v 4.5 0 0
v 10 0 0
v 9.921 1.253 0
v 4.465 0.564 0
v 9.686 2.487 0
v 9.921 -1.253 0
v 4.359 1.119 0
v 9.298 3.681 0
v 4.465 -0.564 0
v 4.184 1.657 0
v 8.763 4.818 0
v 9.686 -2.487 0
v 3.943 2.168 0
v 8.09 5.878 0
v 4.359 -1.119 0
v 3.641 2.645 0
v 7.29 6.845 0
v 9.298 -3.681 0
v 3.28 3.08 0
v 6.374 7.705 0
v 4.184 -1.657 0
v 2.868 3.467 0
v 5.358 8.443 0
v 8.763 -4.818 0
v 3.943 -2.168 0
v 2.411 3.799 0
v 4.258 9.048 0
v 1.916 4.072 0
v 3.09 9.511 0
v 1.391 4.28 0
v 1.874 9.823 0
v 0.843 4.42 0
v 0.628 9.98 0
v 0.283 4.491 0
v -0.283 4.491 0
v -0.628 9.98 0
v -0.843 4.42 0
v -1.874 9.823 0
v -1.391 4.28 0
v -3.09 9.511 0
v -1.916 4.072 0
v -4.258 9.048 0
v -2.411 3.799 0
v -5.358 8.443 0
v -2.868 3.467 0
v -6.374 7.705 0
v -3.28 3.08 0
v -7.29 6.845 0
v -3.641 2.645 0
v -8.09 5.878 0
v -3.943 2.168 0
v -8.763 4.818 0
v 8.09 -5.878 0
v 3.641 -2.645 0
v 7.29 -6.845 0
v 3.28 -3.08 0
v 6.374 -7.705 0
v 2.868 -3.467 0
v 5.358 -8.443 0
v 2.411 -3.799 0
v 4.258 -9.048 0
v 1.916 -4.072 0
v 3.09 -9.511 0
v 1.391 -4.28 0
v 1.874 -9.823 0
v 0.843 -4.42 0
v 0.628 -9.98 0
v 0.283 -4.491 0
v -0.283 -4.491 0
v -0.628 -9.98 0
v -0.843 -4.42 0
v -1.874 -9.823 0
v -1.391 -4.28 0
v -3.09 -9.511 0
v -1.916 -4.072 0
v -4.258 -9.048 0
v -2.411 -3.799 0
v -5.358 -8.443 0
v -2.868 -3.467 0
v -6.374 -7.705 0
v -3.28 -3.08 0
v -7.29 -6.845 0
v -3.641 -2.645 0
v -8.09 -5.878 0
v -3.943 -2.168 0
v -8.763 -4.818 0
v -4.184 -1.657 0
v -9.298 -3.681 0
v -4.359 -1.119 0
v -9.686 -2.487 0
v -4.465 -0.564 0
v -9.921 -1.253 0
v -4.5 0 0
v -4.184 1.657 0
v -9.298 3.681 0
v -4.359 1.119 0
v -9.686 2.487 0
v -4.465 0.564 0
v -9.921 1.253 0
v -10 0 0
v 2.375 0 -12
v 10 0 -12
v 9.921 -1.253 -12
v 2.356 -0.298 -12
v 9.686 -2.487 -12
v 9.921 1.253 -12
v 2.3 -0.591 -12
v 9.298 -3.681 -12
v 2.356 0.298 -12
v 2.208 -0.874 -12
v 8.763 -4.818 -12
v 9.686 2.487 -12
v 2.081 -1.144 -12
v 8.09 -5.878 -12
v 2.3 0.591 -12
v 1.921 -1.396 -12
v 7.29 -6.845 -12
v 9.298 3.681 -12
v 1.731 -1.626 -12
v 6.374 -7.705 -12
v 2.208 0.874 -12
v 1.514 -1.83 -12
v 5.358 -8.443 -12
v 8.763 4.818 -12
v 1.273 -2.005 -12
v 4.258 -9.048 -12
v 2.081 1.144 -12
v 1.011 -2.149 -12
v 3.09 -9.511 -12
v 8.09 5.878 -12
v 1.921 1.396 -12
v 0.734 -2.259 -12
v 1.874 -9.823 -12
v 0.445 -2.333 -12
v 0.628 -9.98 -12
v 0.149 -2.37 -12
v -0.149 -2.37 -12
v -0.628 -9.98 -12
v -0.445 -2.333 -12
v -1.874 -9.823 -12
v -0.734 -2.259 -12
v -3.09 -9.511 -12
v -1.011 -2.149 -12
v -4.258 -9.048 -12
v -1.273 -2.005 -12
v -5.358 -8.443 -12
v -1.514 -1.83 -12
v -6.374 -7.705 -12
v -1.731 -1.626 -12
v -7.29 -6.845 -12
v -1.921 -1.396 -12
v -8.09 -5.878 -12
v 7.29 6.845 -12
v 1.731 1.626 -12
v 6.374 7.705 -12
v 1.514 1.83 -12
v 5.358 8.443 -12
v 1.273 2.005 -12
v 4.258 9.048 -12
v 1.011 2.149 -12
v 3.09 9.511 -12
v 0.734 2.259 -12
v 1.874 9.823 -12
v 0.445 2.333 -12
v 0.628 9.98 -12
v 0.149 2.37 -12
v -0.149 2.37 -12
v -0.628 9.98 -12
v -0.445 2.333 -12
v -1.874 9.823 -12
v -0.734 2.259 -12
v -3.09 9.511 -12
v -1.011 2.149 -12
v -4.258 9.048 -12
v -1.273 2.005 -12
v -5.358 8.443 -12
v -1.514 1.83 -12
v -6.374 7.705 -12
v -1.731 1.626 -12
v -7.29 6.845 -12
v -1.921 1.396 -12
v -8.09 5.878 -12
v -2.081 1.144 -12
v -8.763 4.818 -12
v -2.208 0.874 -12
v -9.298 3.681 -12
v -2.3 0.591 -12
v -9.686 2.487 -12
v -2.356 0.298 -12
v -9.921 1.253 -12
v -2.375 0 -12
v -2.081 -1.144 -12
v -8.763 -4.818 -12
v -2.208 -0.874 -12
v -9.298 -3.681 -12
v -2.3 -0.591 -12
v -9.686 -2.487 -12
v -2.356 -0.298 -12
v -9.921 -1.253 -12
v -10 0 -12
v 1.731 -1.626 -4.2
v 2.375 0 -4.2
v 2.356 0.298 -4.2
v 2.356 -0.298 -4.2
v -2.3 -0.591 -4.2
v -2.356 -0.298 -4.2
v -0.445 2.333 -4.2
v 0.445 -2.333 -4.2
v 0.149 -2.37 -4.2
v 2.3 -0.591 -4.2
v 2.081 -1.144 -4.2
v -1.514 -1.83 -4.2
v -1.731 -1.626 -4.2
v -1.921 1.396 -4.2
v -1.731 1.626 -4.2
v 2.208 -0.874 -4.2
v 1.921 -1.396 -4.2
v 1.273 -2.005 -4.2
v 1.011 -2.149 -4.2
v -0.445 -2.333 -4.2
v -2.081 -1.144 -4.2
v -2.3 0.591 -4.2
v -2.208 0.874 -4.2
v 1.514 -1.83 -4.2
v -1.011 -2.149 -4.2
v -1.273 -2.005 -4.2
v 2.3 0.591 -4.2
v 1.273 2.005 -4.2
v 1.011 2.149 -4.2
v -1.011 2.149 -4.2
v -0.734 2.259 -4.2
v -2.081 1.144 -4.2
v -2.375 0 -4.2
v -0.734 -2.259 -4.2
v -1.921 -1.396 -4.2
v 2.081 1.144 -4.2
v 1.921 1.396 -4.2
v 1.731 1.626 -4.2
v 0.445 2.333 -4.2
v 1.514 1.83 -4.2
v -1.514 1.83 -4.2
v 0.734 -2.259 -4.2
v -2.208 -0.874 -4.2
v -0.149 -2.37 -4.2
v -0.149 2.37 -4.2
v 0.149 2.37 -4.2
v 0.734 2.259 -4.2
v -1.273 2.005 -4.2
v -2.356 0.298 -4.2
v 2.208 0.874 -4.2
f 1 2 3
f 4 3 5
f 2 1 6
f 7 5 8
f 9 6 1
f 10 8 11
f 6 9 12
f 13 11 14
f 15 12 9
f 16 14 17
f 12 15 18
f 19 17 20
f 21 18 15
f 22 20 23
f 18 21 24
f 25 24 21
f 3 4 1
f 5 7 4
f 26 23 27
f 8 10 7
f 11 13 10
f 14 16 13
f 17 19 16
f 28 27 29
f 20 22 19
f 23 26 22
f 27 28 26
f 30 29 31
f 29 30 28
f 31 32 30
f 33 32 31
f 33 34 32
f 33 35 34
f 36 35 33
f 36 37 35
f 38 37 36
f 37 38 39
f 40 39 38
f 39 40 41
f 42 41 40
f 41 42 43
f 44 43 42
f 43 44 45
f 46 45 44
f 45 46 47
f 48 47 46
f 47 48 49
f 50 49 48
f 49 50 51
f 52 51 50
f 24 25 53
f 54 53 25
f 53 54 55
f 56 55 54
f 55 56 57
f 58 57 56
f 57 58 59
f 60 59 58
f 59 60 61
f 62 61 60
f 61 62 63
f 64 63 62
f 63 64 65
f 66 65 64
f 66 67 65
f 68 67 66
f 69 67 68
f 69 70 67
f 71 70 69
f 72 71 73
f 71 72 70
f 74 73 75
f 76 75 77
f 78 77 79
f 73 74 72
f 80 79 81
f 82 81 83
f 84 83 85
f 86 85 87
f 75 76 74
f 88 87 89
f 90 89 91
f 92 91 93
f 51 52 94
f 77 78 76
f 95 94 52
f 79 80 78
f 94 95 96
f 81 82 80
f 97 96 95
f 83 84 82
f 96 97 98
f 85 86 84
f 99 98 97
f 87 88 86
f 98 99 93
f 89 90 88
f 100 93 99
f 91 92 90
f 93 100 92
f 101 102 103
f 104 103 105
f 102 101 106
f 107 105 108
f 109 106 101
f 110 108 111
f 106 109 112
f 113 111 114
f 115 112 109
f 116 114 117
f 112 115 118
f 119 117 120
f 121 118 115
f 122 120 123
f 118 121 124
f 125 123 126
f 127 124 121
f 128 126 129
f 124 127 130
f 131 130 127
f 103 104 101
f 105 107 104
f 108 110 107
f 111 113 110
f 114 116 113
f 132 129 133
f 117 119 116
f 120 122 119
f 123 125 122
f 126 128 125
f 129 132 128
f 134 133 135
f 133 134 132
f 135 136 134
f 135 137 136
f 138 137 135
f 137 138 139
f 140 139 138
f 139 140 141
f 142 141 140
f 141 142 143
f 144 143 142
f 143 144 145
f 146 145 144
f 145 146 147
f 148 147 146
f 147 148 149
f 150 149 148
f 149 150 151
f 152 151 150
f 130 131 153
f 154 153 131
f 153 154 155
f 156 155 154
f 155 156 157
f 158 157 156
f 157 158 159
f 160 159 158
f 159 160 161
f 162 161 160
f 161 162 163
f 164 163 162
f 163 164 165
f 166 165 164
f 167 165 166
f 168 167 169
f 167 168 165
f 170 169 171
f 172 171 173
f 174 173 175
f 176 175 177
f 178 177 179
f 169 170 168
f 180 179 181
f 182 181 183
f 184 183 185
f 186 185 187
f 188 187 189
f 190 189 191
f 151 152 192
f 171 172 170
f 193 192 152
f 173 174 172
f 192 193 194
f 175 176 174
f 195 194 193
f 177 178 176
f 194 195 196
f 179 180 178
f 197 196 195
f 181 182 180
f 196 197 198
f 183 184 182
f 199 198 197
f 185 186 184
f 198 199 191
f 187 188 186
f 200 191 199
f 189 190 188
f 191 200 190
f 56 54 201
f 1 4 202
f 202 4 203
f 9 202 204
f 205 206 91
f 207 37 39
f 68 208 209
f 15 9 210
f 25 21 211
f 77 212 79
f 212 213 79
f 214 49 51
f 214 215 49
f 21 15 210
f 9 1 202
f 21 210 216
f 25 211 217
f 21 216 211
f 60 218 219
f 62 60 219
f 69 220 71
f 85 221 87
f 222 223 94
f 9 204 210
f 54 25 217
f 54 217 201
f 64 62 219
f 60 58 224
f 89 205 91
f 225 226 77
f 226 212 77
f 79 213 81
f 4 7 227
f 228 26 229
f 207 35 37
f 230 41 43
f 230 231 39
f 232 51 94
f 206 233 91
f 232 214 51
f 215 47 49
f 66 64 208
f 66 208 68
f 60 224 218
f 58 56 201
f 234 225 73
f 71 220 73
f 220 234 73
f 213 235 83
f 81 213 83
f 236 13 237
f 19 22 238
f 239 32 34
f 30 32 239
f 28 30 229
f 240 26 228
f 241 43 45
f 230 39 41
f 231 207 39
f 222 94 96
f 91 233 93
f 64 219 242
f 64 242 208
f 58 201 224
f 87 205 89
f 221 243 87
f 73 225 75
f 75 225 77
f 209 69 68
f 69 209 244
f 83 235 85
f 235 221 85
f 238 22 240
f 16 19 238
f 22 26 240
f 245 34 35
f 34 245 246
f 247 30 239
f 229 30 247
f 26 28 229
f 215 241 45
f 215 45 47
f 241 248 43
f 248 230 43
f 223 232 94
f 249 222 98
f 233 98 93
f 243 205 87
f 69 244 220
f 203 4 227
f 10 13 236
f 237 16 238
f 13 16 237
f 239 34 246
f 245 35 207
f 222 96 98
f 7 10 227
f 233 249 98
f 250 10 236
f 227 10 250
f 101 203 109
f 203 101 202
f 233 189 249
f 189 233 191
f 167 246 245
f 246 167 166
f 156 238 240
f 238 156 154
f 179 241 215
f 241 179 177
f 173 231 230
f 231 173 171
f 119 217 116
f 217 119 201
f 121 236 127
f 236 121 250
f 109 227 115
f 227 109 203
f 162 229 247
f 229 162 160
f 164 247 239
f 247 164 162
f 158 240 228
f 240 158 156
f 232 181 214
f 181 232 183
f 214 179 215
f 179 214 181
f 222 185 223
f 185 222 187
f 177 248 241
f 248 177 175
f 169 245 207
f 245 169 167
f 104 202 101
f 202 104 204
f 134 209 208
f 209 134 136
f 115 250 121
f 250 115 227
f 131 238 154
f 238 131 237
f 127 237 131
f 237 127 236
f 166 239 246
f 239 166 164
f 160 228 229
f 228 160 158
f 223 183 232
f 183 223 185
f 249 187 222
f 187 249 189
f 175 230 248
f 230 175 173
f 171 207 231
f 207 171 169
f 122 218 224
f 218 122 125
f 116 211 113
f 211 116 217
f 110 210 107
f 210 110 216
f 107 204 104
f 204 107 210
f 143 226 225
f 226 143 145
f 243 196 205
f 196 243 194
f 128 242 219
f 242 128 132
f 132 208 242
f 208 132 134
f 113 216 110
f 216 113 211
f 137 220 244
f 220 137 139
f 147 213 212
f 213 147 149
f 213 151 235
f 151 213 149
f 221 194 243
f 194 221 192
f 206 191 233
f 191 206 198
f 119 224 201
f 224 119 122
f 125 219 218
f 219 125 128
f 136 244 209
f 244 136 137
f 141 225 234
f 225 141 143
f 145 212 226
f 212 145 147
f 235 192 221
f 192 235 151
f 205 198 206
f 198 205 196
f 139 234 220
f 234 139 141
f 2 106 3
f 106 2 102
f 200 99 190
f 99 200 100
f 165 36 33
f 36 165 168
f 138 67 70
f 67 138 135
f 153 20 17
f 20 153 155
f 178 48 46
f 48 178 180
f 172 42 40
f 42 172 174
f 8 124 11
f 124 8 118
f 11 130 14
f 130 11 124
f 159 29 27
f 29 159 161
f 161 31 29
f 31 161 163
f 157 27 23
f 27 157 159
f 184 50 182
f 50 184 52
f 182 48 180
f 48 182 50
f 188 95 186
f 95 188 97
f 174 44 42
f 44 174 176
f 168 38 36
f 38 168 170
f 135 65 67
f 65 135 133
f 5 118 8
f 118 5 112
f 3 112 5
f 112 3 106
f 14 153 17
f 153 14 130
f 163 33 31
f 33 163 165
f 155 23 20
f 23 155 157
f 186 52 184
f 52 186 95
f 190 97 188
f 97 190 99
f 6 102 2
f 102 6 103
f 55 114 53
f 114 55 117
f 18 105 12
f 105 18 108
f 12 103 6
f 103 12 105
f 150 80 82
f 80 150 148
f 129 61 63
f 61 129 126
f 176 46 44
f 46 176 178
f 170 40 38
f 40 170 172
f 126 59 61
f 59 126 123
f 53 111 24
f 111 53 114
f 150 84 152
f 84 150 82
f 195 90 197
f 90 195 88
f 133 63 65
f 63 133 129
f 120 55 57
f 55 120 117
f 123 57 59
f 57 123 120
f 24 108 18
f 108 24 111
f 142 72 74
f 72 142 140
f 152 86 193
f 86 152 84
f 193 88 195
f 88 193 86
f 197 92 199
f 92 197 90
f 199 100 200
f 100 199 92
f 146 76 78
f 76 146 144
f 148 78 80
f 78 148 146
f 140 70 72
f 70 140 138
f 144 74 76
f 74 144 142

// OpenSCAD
$fn = 50;


difference() {
	union() {
		translate(v = [0, 0, -12.0000000000]) {
			cylinder(h = 12, r = 10.0000000000);
		}
		cylinder(h = 0, r = 20.0000000000);
	}
	union() {
		translate(v = [0, 0, 0]) {
			rotate(a = [0, 0, 0]) {
				difference() {
					union() {
						#translate(v = [0, 0, -12.0000000000]) {
							cylinder(h = 12, r = 2.2500000000);
						}
						#translate(v = [0, 0, -4.2000000000]) {
							cylinder(h = 4.2000000000, r = 10.0000000000, r1 = 2.3750000000, r2 = 4.5000000000);
						}
						#translate(v = [0, 0, -12.0000000000]) {
							cylinder(h = 12, r = 2.3750000000);
						}
						#translate(v = [0, 0, -12.0000000000]) {
							cylinder(h = 12, r = 2.2500000000);
						}
					}
					union();
				}
			}
		}
	}
}
